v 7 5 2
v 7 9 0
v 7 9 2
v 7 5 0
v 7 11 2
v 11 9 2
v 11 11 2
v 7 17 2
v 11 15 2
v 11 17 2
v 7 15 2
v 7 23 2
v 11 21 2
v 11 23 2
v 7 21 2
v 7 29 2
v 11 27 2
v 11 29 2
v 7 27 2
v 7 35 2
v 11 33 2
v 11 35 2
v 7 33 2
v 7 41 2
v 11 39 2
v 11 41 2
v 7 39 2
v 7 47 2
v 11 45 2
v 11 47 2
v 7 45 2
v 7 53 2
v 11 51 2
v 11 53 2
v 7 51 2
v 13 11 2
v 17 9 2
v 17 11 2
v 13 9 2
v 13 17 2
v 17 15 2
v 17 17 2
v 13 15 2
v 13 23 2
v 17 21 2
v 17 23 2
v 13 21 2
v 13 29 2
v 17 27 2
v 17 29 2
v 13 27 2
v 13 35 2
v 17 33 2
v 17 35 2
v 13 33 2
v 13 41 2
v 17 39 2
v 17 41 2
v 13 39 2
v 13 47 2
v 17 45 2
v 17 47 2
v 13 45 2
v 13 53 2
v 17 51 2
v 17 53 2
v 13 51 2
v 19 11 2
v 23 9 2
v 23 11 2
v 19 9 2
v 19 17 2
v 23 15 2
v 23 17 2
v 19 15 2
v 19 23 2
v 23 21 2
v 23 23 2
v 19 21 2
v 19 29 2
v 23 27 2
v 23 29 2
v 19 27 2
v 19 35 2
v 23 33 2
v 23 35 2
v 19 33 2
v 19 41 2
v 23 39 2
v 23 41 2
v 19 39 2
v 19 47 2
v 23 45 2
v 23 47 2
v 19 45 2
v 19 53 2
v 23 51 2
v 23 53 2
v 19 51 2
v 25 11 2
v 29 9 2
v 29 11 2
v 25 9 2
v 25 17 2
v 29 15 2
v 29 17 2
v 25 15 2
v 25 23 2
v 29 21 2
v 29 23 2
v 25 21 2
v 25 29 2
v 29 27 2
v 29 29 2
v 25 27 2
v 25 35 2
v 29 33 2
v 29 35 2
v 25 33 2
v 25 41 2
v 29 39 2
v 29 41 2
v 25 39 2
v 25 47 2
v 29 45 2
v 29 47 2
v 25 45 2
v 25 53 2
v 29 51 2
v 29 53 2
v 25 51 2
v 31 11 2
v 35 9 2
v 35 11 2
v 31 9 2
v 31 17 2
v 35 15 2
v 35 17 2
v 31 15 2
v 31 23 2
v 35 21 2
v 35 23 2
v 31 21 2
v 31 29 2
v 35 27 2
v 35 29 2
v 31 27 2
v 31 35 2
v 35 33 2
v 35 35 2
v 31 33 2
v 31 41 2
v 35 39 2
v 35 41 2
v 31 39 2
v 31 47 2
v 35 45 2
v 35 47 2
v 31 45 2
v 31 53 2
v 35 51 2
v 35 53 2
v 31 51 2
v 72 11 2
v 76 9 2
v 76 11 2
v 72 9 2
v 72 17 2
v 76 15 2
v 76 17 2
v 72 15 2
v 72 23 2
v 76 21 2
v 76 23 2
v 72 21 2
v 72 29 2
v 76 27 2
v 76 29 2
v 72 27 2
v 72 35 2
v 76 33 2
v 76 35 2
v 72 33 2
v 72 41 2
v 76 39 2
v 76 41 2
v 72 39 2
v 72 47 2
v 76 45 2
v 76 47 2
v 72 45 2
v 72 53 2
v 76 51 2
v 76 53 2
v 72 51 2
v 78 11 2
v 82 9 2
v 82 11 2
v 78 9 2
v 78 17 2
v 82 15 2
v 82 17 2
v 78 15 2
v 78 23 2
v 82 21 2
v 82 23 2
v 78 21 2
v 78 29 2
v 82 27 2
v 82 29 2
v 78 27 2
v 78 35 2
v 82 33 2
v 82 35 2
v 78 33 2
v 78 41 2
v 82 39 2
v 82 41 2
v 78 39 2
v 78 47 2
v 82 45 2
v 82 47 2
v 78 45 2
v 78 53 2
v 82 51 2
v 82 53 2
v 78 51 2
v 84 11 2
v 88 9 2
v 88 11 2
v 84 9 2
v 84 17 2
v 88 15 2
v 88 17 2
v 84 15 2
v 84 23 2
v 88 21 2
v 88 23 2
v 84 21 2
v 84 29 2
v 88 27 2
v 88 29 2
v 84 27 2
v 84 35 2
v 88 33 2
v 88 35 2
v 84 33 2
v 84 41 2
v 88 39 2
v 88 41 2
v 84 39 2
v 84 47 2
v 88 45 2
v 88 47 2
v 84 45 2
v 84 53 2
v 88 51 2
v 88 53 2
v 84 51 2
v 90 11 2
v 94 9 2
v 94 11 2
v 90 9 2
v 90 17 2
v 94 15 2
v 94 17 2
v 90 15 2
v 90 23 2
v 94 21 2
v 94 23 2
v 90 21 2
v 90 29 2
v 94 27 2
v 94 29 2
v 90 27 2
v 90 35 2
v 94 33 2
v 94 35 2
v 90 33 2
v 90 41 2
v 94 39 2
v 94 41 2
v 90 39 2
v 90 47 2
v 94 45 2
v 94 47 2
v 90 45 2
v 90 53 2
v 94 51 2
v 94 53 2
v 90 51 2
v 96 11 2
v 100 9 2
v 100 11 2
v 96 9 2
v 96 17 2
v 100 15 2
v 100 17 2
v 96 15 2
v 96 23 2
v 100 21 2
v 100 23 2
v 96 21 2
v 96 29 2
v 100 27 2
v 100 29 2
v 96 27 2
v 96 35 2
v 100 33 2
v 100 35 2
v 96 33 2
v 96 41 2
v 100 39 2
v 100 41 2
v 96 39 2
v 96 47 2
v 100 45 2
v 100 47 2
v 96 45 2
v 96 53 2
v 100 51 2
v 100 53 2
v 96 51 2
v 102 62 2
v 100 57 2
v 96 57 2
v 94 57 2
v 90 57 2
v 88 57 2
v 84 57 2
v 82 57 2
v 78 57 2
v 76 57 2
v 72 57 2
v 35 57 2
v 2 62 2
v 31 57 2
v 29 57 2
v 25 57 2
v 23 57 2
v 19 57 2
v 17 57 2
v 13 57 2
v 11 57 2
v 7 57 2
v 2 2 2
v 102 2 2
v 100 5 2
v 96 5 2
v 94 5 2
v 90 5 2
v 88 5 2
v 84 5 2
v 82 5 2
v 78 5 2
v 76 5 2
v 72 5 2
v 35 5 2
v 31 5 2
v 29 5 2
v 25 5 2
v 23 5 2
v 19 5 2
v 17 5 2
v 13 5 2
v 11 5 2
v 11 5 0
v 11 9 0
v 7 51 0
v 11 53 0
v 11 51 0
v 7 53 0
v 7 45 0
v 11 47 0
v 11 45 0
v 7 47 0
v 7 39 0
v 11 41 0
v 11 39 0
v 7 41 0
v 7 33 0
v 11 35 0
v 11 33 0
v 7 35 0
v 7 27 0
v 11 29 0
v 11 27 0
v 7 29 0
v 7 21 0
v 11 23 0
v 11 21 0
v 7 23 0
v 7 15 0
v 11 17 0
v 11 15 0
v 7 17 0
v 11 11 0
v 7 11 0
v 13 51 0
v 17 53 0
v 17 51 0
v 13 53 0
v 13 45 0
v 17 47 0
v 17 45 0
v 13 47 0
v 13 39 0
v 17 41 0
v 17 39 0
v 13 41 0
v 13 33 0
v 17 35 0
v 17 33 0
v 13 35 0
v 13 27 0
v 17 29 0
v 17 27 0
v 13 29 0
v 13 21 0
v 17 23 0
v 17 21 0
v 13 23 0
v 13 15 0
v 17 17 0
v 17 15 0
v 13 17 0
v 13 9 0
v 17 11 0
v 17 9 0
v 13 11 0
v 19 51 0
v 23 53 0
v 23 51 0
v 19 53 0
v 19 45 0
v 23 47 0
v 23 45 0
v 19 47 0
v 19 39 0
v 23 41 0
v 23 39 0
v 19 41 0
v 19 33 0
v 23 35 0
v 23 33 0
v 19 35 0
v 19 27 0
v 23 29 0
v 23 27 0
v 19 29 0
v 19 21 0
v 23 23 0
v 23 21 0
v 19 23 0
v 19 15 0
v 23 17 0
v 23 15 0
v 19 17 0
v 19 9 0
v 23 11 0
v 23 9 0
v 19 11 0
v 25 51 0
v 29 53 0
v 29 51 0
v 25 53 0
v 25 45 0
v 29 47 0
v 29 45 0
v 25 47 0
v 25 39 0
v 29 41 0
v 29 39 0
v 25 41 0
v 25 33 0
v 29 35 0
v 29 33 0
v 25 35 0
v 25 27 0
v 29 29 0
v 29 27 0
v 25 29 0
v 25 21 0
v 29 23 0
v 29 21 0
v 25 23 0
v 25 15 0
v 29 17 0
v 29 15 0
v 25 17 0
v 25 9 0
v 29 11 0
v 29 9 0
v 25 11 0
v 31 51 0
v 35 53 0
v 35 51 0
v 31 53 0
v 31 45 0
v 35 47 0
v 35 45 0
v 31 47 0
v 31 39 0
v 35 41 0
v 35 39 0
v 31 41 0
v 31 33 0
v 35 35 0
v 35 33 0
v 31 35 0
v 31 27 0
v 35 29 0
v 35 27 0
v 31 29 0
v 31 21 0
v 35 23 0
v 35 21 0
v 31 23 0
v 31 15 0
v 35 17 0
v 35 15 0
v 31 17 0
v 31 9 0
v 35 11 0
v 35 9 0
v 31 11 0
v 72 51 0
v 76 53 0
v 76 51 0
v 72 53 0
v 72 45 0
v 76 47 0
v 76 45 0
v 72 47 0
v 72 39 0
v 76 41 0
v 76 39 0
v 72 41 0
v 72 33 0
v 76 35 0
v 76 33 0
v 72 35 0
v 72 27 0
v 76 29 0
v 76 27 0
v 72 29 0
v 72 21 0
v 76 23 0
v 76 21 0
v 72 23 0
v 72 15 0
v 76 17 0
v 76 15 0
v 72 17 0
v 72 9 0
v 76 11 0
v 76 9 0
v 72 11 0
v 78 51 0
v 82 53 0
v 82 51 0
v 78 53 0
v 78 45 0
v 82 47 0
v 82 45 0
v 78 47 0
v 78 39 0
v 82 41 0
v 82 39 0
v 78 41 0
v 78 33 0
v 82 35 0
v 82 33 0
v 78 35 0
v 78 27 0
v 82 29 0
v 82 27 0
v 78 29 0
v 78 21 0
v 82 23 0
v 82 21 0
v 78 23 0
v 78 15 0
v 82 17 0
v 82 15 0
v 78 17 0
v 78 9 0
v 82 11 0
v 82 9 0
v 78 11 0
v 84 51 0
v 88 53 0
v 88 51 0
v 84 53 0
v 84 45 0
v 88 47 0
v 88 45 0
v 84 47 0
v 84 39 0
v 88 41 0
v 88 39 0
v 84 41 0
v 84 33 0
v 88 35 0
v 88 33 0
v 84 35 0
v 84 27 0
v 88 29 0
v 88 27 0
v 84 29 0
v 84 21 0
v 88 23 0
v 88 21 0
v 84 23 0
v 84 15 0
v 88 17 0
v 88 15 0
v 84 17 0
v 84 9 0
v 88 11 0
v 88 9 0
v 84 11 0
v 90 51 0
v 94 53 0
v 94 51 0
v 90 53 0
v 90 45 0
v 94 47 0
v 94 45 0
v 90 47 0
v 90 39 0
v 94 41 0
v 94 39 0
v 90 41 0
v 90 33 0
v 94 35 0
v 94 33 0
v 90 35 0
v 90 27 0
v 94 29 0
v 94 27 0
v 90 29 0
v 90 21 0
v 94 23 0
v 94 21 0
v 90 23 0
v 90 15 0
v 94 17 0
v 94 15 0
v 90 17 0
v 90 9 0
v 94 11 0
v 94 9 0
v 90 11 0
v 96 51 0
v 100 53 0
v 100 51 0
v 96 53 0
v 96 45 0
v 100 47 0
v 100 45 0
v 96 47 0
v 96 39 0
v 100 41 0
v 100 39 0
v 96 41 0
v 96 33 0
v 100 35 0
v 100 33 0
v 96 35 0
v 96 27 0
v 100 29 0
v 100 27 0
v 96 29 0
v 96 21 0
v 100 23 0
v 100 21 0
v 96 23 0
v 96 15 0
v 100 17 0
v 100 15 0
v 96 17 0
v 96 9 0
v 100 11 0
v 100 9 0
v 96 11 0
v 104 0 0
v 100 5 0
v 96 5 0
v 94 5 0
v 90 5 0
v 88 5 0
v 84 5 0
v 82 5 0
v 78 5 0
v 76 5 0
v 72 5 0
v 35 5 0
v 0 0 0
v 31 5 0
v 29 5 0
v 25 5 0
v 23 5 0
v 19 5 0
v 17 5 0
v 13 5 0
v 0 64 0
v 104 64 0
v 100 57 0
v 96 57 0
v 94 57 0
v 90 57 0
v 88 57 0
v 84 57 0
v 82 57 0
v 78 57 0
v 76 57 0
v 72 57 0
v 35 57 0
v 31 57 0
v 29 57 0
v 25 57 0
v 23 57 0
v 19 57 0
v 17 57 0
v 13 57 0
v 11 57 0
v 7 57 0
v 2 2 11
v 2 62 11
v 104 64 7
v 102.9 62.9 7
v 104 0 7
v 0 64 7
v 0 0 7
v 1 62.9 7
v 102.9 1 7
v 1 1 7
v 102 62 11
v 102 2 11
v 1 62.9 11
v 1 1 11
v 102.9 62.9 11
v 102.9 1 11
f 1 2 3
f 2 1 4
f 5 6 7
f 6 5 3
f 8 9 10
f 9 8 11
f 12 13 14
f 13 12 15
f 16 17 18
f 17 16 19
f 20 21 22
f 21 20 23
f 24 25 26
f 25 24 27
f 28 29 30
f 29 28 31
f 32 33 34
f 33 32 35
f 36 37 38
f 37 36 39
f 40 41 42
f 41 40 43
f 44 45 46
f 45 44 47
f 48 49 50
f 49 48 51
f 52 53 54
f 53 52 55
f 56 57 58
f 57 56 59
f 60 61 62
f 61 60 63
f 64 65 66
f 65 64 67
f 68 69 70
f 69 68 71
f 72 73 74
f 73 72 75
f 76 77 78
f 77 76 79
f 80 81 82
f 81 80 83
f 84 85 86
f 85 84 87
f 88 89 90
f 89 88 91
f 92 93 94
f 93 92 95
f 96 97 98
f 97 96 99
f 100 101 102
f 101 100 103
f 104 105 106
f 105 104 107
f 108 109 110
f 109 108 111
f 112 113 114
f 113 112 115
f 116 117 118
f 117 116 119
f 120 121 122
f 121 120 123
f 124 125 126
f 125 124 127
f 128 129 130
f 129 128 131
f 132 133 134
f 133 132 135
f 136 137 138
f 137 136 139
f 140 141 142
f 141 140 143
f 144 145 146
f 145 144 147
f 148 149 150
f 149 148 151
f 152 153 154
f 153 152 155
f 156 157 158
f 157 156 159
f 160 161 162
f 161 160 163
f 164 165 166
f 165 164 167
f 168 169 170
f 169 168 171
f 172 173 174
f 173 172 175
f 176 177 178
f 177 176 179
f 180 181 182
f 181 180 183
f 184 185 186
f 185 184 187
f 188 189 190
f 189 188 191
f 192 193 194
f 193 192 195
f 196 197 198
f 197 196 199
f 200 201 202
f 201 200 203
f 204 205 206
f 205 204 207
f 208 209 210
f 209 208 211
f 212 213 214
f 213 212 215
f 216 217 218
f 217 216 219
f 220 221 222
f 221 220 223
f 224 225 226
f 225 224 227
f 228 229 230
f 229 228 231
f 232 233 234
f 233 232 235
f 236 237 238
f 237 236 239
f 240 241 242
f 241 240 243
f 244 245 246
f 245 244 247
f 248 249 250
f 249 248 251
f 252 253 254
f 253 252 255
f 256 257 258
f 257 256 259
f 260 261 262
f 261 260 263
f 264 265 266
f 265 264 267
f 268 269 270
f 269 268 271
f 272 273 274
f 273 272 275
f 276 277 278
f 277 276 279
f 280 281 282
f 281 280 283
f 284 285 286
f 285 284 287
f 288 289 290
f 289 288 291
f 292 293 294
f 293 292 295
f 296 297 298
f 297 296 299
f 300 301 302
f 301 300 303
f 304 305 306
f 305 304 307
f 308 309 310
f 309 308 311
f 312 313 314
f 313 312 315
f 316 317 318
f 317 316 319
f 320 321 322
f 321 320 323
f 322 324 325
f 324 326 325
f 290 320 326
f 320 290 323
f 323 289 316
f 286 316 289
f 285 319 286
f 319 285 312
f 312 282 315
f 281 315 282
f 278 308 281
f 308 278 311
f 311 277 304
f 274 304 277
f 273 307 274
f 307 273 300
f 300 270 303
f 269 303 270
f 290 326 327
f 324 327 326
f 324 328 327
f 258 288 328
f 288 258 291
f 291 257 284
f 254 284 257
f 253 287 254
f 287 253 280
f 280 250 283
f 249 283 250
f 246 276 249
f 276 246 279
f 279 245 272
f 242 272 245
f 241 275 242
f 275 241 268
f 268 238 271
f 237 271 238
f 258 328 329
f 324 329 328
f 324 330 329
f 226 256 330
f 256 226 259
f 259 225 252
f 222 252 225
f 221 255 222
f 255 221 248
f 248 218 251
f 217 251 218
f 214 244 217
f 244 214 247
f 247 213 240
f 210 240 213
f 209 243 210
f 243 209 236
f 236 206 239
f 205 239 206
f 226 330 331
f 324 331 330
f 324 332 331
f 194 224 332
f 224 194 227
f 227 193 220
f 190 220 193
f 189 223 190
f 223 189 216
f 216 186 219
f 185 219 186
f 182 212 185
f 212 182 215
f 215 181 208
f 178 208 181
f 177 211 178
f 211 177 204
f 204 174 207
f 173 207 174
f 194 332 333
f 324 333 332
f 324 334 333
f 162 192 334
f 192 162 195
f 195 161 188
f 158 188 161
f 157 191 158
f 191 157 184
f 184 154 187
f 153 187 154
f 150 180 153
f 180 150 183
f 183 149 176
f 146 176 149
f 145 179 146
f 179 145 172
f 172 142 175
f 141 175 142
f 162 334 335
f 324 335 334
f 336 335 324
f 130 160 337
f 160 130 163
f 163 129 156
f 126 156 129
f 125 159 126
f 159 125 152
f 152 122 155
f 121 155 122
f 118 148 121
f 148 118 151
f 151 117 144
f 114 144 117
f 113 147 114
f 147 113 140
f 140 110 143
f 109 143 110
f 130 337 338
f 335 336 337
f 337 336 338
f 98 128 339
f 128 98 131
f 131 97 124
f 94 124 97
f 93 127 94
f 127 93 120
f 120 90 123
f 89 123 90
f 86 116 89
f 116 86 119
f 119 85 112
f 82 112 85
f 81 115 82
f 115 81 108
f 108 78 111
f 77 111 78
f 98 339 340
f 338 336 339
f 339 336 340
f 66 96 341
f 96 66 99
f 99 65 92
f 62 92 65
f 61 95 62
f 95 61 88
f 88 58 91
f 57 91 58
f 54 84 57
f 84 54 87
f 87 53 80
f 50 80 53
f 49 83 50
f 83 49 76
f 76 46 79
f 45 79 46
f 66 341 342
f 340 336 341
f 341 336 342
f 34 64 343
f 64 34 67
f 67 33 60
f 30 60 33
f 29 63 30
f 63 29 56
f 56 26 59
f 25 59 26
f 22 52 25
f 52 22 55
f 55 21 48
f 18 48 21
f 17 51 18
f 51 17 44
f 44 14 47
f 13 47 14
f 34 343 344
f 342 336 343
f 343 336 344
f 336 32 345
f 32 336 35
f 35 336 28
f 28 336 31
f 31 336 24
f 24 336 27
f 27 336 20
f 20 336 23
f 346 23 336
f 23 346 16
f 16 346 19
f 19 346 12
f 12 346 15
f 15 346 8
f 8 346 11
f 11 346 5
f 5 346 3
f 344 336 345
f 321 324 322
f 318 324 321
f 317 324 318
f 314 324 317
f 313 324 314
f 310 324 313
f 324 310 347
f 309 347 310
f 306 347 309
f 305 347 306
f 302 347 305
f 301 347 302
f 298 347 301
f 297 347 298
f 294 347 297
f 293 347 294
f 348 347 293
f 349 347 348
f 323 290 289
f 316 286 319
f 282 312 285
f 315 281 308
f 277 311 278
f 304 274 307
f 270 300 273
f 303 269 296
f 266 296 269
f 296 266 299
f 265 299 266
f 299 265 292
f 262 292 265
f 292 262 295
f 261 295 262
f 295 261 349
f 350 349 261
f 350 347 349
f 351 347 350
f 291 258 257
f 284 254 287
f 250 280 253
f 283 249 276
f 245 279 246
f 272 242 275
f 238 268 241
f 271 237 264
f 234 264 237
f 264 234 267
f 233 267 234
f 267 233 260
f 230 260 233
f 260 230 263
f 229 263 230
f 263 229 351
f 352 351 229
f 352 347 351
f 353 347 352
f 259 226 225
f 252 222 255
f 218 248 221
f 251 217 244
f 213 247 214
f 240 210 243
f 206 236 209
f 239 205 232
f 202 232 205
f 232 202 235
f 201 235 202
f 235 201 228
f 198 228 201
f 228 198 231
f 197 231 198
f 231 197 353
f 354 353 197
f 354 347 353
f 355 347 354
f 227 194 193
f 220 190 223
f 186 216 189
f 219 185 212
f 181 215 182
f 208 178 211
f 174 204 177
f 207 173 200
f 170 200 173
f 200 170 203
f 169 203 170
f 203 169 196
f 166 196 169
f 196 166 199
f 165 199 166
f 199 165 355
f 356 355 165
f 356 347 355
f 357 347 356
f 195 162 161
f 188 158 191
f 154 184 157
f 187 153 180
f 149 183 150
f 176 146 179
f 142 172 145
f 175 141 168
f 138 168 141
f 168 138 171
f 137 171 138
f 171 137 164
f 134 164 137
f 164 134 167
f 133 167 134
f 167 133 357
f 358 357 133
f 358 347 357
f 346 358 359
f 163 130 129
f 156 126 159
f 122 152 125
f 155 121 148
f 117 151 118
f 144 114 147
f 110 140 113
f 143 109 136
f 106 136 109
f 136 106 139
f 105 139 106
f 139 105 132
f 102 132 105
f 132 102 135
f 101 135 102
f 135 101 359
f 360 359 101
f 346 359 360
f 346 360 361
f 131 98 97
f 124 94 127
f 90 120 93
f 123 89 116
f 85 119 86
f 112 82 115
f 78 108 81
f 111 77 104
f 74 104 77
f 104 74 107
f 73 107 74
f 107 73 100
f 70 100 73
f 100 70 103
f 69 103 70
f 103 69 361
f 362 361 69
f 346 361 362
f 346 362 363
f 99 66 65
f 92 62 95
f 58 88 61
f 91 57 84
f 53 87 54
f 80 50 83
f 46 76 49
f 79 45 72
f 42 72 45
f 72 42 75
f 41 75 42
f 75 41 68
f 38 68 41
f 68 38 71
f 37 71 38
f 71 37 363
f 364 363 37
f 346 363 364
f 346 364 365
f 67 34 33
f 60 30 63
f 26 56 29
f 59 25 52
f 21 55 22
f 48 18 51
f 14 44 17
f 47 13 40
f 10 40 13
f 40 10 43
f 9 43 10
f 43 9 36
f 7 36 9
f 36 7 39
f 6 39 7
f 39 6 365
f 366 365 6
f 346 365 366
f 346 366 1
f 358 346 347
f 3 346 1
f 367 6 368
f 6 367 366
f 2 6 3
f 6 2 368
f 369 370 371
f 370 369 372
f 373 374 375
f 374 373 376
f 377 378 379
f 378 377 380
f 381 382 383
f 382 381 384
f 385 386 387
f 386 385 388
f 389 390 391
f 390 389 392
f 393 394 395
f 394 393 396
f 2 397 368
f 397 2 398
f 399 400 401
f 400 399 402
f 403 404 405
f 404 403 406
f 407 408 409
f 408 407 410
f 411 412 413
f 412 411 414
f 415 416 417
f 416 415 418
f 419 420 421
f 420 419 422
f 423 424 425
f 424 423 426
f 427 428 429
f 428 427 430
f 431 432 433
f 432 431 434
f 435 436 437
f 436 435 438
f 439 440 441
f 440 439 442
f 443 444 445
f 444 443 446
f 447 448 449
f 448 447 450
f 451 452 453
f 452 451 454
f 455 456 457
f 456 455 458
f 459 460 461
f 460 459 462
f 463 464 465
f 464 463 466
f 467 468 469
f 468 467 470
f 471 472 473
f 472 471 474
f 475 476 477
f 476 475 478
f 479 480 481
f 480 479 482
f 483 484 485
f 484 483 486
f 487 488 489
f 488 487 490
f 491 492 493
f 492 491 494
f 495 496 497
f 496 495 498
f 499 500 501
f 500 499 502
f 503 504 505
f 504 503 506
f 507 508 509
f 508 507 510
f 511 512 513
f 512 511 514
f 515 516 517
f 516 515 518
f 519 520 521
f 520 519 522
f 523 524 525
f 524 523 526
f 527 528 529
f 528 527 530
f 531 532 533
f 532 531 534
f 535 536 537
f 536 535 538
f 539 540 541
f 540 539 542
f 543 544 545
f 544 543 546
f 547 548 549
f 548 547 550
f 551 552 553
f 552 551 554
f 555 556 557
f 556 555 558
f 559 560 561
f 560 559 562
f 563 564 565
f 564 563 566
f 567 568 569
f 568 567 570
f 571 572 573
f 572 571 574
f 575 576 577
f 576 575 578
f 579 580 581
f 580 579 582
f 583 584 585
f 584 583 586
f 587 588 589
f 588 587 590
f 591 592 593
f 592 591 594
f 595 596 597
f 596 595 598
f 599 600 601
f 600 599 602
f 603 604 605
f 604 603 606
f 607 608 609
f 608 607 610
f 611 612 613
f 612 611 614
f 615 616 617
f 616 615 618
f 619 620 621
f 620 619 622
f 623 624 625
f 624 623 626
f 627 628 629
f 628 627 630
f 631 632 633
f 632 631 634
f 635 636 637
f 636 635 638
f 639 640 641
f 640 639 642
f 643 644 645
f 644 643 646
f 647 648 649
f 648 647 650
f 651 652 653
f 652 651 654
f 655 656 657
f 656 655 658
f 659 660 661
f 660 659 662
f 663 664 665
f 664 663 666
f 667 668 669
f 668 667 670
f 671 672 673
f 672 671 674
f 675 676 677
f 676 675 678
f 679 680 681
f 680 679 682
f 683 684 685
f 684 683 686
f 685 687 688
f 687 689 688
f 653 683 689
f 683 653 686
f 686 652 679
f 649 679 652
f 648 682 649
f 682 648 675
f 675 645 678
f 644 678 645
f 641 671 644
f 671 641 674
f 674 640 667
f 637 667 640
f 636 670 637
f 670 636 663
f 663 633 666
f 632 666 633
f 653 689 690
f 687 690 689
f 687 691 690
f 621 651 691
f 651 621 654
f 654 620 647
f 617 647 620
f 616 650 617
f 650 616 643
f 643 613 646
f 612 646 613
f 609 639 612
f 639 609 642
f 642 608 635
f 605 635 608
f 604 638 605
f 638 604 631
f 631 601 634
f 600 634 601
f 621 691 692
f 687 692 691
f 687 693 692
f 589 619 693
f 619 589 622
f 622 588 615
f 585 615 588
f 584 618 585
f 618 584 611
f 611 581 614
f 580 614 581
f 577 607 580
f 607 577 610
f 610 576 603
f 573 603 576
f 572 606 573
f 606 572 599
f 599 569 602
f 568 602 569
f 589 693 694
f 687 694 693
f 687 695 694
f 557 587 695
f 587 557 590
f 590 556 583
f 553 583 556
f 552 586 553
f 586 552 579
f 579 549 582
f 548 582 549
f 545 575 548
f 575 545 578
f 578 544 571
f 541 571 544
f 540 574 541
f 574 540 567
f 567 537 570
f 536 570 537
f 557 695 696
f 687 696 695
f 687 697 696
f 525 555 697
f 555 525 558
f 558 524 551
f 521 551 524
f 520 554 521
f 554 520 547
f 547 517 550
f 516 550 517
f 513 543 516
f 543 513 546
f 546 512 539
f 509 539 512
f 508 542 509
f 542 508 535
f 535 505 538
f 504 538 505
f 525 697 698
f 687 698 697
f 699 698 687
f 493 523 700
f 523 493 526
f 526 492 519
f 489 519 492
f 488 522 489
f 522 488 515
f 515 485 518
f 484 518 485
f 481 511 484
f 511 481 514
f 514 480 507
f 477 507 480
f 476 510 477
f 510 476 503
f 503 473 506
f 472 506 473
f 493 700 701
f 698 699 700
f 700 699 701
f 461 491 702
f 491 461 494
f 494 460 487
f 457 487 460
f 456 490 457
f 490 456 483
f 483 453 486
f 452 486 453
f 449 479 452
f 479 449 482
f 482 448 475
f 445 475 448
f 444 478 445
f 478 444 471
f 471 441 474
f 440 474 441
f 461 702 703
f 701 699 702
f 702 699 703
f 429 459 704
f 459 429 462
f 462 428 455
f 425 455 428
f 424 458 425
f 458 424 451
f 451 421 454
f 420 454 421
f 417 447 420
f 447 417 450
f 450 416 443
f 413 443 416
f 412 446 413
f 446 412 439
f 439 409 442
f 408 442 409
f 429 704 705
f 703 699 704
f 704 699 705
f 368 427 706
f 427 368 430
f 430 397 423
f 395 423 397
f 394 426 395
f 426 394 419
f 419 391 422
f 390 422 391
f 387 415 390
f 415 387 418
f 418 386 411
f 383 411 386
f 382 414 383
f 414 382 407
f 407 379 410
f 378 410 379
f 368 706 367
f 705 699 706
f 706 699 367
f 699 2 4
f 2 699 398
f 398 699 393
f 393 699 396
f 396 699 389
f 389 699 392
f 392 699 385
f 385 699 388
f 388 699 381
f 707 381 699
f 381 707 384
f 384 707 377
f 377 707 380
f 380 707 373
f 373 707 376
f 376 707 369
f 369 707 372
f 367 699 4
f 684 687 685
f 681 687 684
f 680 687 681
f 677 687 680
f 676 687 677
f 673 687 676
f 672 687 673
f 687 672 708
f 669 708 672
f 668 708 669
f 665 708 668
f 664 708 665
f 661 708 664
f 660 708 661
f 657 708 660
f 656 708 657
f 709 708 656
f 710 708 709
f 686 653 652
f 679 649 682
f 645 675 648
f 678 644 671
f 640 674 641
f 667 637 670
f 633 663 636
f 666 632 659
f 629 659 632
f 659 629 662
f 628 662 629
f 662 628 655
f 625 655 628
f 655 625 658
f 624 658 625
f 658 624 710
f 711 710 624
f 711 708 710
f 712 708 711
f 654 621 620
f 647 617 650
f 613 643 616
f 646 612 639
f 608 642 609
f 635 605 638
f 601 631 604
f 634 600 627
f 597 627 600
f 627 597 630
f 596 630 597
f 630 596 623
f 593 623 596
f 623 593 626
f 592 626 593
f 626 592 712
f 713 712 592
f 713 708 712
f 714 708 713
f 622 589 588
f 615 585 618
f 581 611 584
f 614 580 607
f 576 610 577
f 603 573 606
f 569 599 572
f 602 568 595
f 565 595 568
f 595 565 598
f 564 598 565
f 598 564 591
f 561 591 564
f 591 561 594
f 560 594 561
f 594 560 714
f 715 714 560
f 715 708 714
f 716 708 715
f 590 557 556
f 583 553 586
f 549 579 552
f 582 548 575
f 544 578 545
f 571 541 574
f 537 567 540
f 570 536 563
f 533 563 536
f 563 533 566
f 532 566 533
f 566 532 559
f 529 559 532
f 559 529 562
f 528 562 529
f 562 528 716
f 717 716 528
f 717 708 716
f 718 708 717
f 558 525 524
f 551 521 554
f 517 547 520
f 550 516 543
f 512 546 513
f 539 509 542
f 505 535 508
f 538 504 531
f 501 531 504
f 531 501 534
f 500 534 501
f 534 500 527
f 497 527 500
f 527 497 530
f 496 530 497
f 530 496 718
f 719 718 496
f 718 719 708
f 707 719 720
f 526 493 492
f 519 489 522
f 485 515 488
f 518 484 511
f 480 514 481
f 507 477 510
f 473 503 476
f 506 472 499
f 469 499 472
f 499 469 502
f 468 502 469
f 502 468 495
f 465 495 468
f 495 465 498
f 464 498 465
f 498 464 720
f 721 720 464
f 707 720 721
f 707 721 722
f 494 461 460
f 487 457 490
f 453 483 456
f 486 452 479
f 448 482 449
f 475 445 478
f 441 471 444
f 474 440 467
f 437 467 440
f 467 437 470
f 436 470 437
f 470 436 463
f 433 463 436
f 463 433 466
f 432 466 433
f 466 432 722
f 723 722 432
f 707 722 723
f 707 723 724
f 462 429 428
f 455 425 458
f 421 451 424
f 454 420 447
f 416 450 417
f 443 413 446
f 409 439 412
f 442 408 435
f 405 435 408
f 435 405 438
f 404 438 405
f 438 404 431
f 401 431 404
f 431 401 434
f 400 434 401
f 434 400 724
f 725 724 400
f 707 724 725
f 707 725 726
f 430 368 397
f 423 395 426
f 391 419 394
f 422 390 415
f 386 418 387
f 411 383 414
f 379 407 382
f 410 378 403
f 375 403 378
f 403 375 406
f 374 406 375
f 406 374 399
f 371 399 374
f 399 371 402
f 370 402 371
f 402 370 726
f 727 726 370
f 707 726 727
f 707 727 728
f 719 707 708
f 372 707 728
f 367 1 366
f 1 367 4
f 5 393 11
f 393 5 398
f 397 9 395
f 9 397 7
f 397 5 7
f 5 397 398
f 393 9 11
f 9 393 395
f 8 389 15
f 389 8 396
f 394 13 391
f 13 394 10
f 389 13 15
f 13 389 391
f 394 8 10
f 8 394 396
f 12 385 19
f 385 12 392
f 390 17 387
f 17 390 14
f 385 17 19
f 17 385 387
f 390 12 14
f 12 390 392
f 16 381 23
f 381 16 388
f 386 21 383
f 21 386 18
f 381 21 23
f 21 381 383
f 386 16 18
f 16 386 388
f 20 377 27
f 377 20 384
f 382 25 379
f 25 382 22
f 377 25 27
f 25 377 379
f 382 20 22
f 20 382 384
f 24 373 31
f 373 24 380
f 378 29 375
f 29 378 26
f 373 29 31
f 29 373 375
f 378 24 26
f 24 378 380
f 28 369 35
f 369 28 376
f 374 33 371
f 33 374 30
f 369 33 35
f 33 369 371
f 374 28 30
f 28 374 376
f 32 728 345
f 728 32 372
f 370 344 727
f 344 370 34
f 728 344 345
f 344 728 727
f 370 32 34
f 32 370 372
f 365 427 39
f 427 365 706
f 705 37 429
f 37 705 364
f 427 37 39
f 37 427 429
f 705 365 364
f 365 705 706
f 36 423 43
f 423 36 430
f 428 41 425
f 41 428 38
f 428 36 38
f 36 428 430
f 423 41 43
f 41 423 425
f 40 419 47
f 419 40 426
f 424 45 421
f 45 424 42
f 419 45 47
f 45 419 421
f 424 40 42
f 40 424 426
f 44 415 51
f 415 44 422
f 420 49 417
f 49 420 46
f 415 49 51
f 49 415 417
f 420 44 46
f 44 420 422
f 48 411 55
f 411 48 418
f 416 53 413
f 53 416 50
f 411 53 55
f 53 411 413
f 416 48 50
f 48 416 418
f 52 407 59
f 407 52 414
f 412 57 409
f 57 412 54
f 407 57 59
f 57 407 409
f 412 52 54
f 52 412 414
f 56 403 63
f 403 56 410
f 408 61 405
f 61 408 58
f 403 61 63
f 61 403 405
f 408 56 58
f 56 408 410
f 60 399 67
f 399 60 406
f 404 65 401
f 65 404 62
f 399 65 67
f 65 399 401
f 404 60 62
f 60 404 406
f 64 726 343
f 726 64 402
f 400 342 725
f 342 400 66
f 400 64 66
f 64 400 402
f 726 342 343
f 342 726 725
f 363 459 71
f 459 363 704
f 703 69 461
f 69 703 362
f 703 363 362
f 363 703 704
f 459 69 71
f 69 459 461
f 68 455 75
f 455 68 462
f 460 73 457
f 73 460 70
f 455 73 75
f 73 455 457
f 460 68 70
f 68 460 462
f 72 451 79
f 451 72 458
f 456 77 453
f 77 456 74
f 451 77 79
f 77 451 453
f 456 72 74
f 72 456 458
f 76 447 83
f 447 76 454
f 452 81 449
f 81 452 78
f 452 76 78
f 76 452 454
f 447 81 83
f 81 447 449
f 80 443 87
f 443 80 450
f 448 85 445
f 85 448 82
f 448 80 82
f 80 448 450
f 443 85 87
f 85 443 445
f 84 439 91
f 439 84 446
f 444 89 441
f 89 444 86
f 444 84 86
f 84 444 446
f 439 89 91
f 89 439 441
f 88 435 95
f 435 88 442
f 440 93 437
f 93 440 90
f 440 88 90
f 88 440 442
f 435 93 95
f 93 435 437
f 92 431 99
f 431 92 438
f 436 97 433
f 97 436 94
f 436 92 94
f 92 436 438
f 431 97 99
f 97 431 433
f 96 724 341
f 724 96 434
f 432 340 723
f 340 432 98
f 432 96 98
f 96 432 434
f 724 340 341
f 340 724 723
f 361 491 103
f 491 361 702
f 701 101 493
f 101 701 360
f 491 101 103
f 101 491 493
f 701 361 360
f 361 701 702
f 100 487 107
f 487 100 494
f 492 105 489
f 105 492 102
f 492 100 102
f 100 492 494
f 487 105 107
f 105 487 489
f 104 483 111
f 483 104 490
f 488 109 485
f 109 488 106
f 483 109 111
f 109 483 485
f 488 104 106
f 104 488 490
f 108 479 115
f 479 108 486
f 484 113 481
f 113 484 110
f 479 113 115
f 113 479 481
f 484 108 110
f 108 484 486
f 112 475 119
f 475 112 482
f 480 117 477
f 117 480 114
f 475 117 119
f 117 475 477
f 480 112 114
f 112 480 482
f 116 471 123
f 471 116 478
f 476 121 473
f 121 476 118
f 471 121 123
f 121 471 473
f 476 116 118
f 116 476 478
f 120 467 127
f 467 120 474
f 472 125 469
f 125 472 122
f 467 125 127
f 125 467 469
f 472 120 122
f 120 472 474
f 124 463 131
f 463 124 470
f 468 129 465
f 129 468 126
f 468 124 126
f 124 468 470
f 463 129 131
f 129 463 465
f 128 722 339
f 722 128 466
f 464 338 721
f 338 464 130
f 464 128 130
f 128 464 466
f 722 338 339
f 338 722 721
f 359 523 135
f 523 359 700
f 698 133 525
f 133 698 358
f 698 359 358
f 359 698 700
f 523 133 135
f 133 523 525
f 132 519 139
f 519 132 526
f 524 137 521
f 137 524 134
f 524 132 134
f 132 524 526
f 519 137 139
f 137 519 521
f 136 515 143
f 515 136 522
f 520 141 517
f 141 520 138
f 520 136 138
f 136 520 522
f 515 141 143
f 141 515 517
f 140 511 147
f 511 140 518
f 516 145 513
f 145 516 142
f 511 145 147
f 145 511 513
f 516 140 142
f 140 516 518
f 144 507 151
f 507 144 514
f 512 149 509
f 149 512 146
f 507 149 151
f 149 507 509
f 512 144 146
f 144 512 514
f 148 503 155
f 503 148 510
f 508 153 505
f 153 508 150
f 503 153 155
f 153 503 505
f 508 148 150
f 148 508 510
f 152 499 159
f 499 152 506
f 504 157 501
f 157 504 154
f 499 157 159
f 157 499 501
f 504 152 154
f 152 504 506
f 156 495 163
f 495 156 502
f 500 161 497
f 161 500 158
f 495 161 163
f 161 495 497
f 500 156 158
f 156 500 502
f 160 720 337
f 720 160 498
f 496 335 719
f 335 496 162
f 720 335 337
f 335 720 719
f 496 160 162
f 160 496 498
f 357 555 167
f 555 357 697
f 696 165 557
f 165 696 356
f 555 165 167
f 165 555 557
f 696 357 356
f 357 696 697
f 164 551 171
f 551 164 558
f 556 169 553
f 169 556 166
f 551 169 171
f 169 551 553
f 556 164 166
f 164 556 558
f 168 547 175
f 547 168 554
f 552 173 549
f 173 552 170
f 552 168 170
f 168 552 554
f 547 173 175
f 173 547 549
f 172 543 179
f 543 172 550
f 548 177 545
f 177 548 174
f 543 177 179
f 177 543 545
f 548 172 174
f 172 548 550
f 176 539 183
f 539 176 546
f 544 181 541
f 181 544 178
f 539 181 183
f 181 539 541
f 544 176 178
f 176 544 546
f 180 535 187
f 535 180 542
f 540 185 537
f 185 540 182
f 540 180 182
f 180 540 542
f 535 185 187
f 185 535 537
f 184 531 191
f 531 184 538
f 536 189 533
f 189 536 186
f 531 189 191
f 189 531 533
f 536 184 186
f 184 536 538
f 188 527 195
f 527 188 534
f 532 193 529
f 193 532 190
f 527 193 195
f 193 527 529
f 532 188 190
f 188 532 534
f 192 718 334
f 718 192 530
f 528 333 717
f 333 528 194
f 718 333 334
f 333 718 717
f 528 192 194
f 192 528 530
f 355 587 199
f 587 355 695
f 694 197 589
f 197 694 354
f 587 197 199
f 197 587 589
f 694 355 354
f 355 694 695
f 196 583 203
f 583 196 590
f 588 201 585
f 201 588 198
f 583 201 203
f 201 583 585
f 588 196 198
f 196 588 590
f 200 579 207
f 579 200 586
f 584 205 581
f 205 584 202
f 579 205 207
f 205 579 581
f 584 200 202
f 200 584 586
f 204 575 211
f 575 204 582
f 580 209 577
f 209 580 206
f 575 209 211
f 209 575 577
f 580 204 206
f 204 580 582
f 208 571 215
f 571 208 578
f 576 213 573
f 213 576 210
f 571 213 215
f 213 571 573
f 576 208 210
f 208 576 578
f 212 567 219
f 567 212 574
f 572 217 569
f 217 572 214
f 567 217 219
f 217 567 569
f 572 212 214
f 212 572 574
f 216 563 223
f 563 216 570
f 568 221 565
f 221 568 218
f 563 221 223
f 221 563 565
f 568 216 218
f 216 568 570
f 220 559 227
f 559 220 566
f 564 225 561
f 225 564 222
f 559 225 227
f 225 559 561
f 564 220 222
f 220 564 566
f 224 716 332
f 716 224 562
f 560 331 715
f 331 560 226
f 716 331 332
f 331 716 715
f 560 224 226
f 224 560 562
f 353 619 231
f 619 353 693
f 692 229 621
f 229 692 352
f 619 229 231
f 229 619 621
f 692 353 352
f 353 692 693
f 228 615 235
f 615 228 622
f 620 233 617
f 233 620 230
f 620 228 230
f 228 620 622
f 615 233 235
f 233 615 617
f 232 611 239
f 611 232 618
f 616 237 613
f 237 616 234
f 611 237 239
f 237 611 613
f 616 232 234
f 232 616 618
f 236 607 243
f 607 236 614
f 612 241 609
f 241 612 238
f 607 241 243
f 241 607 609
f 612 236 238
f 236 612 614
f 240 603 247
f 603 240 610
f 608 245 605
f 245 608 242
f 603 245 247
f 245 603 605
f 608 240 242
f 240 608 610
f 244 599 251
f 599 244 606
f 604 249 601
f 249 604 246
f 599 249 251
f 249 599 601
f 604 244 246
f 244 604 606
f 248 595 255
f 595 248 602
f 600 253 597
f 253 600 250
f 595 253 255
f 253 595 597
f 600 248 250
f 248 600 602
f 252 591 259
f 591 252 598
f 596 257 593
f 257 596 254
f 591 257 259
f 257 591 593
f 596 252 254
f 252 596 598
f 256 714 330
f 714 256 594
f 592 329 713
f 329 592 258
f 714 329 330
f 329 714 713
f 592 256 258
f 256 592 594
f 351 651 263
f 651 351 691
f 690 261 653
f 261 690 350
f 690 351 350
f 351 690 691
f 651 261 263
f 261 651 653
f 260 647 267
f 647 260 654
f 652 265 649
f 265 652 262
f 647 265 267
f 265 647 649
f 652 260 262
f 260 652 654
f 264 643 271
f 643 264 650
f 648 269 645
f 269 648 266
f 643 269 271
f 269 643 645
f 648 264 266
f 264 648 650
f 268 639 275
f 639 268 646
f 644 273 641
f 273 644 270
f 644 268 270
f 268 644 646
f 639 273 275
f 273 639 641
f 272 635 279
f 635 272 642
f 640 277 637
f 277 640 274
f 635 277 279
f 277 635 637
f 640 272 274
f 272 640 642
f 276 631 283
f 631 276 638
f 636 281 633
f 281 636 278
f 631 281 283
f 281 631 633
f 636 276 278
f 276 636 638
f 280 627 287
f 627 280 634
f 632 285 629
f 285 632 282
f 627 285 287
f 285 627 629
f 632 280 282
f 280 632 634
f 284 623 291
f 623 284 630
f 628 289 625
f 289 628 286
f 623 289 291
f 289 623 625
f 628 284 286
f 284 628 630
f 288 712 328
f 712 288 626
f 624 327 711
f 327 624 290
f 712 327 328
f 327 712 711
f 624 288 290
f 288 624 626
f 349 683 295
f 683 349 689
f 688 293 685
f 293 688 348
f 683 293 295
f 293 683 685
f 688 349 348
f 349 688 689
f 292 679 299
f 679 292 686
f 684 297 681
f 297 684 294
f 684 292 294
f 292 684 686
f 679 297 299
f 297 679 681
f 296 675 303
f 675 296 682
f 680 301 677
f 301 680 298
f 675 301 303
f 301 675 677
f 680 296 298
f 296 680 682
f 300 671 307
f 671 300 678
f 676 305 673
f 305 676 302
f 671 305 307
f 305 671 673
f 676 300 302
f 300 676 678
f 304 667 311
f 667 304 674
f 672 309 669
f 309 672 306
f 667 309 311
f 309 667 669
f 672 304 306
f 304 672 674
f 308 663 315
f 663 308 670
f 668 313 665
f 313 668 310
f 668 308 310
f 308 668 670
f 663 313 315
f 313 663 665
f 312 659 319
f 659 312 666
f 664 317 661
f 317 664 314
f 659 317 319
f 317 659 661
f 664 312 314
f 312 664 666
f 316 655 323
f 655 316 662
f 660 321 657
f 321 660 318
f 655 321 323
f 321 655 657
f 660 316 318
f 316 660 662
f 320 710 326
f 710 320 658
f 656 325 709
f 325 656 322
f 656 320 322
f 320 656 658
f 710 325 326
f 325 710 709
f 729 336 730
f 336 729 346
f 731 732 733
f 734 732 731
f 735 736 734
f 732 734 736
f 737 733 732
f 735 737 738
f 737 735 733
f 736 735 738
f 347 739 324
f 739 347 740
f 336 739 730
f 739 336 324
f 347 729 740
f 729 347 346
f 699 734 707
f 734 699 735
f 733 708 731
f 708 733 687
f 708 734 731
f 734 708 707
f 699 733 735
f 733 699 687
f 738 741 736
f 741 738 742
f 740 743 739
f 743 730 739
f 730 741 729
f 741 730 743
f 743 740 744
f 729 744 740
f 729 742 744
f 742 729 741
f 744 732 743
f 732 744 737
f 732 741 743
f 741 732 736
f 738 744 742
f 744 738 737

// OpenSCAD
// tftlcdClock back cover
$fn = $preview ? 12 : 72;

// inside size
wid1 = 60;
len1= 90+10;
height = 10;
wall = 2;
gap = 0.1;
cornerRadius = 10;

//buttons
 s=2.54;
 g=0.2;
 sy=11;  




//top

translate([0 , 0, 0]){
    mirror([0,0,0]) {
        //roundedBox(wid1, len1, 1, cornerRadius);
       difference() {
            roundedBox(wid1+2*wall, len1+2*wall, height/2+wall, cornerRadius);
            union() {
            translate([wall,wall,wall]) roundedBox(wid1, len1, height/2, cornerRadius);
            // holes 
            #for (a2 =[0:4]) for (a1 =[1:9]) translate([wall+5+a2*6,a1*6-1,0]) cube(size=[4,4, wall]);  //cylinder(wall,d=3)
            #for (a2 =[0:4]) for (a1 =[1:9]) translate([wall+70+a2*6,a1*6-1,0]) cube(size=[4,4, wall]); //cylinder(wall,d=3)
            // buzzer    
            *translate([50,29,0]) cylinder(wall,d=3);
            }
    }
    // 1 mm thick, 4 mm high
    // gap so we can close the box easy
    
    translate([wall-1,wall-1,height/2+wall]) {    
    difference() {
            roundedBox(wid1+2-gap,len1+2-gap,4,cornerRadius);
            translate([1,1,0]) {
                roundedBox(wid1,len1,4,cornerRadius);
            }    
        }
    }
  }

//buzzer

    *difference() {
        translate([50,29,wall]) cylinder(r=27/2+1,h=4,center=false);
        union() {
            translate([50,29,wall])cylinder(r=27/2-1,h=4,center=false);
            translate([50,29,wall+3])cylinder(r=27/2+0.2,h=1,center=false);
            }    
        }

}



module roundedBox(wid1, len1, height, radius)
{
    dRadius = 2*radius;
    cube(size=[len1,wid1, height]);
  
}
